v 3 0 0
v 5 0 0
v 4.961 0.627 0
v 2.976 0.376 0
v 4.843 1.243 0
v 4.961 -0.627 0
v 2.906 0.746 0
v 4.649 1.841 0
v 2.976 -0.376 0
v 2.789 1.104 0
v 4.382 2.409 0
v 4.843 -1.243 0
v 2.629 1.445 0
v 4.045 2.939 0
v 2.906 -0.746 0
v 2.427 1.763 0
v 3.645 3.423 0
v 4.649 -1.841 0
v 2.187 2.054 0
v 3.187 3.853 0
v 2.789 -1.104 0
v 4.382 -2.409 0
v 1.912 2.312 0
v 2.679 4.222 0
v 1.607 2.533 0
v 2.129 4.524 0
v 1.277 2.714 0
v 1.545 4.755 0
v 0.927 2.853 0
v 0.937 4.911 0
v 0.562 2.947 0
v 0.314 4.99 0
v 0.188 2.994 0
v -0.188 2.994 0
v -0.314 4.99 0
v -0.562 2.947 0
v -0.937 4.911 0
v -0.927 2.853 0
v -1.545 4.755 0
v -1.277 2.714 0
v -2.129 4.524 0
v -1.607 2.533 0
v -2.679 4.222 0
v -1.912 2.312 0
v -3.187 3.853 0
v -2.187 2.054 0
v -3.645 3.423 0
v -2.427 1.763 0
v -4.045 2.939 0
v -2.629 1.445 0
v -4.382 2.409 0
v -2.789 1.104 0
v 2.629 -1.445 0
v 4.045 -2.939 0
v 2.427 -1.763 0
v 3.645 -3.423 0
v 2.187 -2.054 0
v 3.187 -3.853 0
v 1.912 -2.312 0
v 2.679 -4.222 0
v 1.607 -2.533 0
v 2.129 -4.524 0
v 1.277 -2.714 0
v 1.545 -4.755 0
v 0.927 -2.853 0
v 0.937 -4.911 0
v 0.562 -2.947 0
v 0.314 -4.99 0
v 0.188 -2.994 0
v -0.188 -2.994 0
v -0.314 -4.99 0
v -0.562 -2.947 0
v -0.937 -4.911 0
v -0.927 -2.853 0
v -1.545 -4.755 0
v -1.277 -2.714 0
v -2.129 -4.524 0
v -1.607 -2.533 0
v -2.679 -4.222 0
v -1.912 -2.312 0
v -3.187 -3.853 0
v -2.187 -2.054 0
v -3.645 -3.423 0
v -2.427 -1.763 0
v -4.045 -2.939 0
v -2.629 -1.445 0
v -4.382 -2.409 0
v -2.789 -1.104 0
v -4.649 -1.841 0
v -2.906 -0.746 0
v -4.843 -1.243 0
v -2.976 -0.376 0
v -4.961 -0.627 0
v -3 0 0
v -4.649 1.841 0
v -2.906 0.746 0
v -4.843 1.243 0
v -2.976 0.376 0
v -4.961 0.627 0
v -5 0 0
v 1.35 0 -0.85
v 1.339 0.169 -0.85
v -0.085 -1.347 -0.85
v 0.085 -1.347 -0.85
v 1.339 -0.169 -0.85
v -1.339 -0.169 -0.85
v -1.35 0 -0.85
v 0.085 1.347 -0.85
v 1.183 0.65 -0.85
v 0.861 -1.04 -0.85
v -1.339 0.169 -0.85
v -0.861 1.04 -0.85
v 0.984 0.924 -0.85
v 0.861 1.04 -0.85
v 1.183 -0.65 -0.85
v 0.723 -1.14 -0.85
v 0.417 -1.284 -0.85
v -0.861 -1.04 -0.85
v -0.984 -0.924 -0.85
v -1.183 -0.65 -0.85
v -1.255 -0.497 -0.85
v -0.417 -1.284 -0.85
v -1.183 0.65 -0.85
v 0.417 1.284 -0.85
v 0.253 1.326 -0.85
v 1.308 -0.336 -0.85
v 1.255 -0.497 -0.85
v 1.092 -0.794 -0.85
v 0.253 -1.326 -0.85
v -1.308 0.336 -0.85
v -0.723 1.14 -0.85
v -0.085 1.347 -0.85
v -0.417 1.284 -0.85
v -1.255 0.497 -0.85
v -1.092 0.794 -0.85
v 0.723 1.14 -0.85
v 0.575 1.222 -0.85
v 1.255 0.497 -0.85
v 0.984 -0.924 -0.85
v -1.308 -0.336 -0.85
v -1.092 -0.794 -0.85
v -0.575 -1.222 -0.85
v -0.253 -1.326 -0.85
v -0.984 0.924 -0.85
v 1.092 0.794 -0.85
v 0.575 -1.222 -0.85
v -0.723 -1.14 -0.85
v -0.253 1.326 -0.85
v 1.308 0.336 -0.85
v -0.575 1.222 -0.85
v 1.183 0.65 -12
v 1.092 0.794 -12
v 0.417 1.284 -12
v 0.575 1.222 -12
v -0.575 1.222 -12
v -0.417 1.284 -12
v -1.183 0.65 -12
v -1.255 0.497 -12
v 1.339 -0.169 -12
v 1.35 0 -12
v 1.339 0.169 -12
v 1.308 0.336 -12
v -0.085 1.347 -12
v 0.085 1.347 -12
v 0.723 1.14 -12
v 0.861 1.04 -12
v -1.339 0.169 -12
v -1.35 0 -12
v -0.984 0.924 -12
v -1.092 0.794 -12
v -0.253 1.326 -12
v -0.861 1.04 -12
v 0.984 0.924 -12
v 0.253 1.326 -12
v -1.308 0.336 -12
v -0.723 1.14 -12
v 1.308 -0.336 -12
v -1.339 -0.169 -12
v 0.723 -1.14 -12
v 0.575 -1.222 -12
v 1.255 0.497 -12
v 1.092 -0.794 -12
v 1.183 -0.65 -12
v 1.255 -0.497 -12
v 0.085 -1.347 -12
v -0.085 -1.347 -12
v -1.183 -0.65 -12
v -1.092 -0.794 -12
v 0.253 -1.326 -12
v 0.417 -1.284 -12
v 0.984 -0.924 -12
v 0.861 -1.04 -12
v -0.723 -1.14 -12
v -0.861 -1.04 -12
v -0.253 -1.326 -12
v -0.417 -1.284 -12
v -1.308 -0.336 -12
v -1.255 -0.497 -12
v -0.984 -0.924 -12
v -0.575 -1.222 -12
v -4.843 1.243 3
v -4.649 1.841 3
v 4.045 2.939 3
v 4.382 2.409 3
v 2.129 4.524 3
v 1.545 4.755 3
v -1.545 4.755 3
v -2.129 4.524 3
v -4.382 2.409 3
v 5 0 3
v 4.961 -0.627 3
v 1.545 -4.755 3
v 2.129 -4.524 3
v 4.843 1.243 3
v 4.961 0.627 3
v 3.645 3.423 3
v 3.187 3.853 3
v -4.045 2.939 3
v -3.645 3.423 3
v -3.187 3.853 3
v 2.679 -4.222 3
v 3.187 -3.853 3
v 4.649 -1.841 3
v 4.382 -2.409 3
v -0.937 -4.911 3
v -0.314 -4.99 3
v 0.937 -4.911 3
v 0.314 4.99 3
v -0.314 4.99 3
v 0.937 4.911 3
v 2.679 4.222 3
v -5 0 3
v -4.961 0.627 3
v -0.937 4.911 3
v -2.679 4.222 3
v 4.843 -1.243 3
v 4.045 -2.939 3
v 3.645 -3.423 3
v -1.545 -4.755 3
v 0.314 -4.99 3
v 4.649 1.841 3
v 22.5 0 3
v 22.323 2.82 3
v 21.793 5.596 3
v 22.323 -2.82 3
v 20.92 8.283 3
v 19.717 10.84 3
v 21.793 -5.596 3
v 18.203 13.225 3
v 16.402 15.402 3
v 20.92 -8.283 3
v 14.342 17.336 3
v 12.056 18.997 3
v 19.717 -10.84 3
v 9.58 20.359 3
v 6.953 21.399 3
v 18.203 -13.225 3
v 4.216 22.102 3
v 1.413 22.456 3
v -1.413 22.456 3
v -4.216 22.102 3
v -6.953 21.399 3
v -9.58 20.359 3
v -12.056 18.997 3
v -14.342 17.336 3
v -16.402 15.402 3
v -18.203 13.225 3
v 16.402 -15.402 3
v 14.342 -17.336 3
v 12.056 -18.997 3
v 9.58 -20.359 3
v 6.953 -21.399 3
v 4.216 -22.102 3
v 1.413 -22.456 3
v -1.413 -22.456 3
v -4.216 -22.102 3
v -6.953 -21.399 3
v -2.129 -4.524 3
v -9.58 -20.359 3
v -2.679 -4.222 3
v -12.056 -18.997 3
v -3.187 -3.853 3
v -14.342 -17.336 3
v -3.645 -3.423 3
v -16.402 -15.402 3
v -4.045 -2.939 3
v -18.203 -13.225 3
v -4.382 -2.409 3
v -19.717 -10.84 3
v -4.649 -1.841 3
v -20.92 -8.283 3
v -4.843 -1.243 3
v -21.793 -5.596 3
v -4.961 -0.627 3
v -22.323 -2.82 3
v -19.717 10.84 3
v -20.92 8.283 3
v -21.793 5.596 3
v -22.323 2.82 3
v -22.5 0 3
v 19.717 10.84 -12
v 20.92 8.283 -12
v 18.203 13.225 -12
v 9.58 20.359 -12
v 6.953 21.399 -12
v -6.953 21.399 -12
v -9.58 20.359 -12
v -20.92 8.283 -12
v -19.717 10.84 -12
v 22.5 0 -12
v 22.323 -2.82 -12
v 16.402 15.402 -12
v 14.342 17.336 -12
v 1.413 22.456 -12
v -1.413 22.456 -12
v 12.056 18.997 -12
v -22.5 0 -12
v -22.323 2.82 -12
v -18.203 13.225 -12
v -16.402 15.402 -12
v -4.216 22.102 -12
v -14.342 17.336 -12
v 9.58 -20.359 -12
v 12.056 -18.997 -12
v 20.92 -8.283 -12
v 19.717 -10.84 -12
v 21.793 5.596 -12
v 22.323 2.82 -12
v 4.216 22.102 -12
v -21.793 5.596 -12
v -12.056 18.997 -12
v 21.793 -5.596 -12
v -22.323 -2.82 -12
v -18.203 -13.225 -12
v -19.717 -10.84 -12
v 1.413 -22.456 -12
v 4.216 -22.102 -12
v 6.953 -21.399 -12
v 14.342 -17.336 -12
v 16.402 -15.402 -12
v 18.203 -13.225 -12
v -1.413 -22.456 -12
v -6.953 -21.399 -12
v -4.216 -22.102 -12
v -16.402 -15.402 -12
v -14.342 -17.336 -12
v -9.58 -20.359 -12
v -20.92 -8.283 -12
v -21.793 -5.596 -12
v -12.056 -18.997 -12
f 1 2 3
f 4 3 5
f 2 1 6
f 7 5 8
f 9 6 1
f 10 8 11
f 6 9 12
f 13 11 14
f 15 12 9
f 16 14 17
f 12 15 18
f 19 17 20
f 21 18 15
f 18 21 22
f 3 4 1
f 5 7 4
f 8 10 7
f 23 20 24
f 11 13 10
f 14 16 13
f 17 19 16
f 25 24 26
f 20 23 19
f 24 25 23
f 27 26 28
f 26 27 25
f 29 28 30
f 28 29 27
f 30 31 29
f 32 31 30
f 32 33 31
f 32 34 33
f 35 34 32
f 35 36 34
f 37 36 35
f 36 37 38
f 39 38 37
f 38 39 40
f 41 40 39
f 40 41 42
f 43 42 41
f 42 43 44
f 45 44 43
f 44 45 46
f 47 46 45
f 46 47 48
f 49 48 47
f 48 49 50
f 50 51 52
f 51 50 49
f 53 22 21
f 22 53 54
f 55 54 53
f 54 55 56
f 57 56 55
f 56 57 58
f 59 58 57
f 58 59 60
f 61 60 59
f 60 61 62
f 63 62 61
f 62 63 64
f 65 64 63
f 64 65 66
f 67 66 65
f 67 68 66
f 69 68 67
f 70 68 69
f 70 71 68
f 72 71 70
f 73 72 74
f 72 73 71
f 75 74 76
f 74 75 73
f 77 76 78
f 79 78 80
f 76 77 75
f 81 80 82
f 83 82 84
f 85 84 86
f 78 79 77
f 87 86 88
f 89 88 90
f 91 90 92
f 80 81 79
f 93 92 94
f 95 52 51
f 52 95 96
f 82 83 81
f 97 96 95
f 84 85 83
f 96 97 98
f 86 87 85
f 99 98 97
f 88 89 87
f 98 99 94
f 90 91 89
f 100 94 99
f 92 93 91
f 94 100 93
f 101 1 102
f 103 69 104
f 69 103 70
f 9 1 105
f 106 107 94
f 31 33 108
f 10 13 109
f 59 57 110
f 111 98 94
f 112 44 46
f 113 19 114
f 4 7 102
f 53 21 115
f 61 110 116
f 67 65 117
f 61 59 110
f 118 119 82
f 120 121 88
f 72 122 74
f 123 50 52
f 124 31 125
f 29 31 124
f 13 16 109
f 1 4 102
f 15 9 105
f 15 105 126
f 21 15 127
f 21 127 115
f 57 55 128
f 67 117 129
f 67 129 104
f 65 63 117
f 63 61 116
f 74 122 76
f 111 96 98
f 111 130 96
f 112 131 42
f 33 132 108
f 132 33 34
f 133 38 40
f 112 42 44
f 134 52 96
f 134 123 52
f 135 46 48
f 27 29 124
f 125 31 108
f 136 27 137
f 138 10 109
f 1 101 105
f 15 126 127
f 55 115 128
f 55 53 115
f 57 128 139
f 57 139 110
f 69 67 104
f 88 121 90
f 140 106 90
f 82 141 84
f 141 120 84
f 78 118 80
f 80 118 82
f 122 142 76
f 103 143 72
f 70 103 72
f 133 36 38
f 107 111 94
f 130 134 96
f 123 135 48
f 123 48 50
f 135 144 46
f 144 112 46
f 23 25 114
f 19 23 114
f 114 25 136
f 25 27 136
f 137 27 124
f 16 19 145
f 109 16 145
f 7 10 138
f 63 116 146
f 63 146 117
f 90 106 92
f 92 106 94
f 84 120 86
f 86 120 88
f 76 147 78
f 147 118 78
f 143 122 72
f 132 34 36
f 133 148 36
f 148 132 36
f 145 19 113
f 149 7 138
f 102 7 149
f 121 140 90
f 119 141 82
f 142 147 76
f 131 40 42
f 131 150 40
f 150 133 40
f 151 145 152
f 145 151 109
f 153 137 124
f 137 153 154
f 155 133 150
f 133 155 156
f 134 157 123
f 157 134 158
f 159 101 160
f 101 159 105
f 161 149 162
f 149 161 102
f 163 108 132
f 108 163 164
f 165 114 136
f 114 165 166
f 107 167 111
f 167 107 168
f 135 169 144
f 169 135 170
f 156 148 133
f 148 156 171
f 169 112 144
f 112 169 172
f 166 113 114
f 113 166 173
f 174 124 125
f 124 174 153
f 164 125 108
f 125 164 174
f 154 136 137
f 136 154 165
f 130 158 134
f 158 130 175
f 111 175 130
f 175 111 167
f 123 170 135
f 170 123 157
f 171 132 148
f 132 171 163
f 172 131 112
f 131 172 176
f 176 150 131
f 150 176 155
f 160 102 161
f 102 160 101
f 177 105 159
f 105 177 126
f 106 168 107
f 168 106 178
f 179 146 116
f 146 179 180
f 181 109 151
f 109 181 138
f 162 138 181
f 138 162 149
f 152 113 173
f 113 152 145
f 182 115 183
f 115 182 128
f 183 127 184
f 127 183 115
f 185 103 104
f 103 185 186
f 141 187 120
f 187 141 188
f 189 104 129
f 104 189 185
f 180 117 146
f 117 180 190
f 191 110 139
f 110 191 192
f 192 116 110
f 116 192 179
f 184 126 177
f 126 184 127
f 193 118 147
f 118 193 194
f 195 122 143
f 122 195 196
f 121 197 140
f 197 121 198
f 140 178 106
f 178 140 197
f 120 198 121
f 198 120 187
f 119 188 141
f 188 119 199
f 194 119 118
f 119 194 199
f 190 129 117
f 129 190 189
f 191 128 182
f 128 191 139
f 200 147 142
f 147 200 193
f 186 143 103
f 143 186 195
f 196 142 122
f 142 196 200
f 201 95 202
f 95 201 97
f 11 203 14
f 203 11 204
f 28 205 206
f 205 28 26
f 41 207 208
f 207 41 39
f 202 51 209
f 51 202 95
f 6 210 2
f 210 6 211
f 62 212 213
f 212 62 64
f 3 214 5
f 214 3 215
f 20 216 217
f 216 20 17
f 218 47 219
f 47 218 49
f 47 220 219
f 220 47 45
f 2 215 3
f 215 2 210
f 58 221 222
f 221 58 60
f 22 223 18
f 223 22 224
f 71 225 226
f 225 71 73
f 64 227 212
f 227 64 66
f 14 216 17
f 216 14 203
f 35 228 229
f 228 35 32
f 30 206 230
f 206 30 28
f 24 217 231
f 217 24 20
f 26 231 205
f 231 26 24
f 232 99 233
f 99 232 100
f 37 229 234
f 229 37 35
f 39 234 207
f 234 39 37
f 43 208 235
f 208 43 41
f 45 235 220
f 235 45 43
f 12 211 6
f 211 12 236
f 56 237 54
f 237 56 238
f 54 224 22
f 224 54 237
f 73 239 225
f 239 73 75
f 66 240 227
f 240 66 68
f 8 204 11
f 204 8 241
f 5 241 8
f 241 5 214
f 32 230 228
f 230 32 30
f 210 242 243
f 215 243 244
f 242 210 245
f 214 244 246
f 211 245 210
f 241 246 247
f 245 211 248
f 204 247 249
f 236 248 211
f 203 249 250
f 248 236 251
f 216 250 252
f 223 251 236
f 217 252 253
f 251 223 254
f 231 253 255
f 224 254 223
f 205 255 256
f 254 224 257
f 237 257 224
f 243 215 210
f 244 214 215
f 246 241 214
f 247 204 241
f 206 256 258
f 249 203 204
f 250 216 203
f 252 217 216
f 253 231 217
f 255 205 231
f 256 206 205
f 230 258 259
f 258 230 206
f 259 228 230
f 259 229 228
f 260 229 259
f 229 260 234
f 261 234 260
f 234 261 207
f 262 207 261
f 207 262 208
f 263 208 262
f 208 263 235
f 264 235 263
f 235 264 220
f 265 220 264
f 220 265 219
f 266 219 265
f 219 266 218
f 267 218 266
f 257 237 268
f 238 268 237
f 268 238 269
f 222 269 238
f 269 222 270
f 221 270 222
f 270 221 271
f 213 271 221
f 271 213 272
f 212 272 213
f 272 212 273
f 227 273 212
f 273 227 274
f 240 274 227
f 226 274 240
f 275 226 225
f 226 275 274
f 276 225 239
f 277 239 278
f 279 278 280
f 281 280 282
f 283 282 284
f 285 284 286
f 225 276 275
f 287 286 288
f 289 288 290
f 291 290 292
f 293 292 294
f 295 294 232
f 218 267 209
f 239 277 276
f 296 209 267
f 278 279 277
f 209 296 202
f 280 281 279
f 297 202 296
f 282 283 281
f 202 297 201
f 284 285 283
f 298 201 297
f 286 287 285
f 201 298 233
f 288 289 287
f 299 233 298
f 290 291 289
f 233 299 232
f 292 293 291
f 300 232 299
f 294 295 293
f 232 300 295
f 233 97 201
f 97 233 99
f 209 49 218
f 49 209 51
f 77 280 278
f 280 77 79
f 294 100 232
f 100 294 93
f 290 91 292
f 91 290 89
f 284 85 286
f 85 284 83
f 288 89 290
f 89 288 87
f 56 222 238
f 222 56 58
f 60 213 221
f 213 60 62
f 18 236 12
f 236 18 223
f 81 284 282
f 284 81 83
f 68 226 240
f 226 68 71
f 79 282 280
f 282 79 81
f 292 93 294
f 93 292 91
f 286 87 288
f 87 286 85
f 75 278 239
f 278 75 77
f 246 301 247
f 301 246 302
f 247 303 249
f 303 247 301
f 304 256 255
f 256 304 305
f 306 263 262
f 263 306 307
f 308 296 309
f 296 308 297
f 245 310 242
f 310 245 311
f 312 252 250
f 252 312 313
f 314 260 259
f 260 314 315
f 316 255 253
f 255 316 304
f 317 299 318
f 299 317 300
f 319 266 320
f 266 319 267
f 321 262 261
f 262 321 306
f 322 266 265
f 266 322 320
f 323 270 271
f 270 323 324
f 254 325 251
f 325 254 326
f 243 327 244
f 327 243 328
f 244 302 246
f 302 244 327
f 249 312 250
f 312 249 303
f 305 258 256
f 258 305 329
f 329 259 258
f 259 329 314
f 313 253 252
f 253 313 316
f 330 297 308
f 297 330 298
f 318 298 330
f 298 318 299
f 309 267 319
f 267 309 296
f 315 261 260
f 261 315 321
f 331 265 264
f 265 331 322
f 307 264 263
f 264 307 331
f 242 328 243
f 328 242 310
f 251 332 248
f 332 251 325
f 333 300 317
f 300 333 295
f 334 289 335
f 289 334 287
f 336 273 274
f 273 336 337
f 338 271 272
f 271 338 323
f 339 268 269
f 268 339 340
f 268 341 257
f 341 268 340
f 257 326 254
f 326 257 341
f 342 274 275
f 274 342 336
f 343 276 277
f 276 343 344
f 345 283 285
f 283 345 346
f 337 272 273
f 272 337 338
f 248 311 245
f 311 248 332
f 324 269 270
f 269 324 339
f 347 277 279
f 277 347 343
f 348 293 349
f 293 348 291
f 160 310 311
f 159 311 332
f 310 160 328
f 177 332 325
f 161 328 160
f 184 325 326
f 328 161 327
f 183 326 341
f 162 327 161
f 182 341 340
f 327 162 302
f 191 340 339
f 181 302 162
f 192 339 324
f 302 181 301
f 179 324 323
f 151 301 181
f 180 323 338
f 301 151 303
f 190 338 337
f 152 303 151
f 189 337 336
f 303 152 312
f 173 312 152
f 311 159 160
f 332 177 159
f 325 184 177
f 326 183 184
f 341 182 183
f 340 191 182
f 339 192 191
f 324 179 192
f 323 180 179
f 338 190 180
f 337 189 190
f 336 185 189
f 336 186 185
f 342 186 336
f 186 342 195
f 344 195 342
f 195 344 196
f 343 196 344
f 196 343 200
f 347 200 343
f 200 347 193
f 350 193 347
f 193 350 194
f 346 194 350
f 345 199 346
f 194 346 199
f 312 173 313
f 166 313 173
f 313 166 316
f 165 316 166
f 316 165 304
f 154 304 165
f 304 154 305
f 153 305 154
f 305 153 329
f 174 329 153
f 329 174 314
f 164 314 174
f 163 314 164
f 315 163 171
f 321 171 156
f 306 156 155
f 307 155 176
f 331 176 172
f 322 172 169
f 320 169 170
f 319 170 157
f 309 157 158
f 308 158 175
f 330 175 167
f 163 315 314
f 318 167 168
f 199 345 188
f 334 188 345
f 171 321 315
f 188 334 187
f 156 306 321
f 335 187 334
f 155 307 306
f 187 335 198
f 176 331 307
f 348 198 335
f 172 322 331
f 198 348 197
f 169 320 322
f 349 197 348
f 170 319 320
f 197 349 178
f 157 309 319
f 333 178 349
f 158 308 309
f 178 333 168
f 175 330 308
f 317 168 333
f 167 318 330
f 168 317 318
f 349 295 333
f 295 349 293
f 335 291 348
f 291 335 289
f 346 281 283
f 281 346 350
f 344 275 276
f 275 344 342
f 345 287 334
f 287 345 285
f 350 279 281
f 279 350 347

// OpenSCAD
$fn = 50;


difference() {
	union() {
		translate(v = [0, 0, -12.0000000000]) {
			cylinder(h = 15, r = 22.5000000000);
		}
	}
	union() {
		translate(v = [0, 0, 0]) {
			rotate(a = [0, 0, 0]) {
				difference() {
					union() {
						translate(v = [0, 0, -15.0000000000]) {
							cylinder(h = 15, r = 1.0000000000);
						}
						translate(v = [0, 0, -0.8500000000]) {
							cylinder(h = 0.8500000000, r1 = 1.3500000000, r2 = 3.0000000000);
						}
						translate(v = [0, 0, -15.0000000000]) {
							cylinder(h = 15, r = 1.3500000000);
						}
						translate(v = [0, 0, -15.0000000000]) {
							cylinder(h = 15, r = 1.0000000000);
						}
					}
					union();
				}
			}
		}
		#cylinder(h = 3, r = 5.0000000000);
	}
}
